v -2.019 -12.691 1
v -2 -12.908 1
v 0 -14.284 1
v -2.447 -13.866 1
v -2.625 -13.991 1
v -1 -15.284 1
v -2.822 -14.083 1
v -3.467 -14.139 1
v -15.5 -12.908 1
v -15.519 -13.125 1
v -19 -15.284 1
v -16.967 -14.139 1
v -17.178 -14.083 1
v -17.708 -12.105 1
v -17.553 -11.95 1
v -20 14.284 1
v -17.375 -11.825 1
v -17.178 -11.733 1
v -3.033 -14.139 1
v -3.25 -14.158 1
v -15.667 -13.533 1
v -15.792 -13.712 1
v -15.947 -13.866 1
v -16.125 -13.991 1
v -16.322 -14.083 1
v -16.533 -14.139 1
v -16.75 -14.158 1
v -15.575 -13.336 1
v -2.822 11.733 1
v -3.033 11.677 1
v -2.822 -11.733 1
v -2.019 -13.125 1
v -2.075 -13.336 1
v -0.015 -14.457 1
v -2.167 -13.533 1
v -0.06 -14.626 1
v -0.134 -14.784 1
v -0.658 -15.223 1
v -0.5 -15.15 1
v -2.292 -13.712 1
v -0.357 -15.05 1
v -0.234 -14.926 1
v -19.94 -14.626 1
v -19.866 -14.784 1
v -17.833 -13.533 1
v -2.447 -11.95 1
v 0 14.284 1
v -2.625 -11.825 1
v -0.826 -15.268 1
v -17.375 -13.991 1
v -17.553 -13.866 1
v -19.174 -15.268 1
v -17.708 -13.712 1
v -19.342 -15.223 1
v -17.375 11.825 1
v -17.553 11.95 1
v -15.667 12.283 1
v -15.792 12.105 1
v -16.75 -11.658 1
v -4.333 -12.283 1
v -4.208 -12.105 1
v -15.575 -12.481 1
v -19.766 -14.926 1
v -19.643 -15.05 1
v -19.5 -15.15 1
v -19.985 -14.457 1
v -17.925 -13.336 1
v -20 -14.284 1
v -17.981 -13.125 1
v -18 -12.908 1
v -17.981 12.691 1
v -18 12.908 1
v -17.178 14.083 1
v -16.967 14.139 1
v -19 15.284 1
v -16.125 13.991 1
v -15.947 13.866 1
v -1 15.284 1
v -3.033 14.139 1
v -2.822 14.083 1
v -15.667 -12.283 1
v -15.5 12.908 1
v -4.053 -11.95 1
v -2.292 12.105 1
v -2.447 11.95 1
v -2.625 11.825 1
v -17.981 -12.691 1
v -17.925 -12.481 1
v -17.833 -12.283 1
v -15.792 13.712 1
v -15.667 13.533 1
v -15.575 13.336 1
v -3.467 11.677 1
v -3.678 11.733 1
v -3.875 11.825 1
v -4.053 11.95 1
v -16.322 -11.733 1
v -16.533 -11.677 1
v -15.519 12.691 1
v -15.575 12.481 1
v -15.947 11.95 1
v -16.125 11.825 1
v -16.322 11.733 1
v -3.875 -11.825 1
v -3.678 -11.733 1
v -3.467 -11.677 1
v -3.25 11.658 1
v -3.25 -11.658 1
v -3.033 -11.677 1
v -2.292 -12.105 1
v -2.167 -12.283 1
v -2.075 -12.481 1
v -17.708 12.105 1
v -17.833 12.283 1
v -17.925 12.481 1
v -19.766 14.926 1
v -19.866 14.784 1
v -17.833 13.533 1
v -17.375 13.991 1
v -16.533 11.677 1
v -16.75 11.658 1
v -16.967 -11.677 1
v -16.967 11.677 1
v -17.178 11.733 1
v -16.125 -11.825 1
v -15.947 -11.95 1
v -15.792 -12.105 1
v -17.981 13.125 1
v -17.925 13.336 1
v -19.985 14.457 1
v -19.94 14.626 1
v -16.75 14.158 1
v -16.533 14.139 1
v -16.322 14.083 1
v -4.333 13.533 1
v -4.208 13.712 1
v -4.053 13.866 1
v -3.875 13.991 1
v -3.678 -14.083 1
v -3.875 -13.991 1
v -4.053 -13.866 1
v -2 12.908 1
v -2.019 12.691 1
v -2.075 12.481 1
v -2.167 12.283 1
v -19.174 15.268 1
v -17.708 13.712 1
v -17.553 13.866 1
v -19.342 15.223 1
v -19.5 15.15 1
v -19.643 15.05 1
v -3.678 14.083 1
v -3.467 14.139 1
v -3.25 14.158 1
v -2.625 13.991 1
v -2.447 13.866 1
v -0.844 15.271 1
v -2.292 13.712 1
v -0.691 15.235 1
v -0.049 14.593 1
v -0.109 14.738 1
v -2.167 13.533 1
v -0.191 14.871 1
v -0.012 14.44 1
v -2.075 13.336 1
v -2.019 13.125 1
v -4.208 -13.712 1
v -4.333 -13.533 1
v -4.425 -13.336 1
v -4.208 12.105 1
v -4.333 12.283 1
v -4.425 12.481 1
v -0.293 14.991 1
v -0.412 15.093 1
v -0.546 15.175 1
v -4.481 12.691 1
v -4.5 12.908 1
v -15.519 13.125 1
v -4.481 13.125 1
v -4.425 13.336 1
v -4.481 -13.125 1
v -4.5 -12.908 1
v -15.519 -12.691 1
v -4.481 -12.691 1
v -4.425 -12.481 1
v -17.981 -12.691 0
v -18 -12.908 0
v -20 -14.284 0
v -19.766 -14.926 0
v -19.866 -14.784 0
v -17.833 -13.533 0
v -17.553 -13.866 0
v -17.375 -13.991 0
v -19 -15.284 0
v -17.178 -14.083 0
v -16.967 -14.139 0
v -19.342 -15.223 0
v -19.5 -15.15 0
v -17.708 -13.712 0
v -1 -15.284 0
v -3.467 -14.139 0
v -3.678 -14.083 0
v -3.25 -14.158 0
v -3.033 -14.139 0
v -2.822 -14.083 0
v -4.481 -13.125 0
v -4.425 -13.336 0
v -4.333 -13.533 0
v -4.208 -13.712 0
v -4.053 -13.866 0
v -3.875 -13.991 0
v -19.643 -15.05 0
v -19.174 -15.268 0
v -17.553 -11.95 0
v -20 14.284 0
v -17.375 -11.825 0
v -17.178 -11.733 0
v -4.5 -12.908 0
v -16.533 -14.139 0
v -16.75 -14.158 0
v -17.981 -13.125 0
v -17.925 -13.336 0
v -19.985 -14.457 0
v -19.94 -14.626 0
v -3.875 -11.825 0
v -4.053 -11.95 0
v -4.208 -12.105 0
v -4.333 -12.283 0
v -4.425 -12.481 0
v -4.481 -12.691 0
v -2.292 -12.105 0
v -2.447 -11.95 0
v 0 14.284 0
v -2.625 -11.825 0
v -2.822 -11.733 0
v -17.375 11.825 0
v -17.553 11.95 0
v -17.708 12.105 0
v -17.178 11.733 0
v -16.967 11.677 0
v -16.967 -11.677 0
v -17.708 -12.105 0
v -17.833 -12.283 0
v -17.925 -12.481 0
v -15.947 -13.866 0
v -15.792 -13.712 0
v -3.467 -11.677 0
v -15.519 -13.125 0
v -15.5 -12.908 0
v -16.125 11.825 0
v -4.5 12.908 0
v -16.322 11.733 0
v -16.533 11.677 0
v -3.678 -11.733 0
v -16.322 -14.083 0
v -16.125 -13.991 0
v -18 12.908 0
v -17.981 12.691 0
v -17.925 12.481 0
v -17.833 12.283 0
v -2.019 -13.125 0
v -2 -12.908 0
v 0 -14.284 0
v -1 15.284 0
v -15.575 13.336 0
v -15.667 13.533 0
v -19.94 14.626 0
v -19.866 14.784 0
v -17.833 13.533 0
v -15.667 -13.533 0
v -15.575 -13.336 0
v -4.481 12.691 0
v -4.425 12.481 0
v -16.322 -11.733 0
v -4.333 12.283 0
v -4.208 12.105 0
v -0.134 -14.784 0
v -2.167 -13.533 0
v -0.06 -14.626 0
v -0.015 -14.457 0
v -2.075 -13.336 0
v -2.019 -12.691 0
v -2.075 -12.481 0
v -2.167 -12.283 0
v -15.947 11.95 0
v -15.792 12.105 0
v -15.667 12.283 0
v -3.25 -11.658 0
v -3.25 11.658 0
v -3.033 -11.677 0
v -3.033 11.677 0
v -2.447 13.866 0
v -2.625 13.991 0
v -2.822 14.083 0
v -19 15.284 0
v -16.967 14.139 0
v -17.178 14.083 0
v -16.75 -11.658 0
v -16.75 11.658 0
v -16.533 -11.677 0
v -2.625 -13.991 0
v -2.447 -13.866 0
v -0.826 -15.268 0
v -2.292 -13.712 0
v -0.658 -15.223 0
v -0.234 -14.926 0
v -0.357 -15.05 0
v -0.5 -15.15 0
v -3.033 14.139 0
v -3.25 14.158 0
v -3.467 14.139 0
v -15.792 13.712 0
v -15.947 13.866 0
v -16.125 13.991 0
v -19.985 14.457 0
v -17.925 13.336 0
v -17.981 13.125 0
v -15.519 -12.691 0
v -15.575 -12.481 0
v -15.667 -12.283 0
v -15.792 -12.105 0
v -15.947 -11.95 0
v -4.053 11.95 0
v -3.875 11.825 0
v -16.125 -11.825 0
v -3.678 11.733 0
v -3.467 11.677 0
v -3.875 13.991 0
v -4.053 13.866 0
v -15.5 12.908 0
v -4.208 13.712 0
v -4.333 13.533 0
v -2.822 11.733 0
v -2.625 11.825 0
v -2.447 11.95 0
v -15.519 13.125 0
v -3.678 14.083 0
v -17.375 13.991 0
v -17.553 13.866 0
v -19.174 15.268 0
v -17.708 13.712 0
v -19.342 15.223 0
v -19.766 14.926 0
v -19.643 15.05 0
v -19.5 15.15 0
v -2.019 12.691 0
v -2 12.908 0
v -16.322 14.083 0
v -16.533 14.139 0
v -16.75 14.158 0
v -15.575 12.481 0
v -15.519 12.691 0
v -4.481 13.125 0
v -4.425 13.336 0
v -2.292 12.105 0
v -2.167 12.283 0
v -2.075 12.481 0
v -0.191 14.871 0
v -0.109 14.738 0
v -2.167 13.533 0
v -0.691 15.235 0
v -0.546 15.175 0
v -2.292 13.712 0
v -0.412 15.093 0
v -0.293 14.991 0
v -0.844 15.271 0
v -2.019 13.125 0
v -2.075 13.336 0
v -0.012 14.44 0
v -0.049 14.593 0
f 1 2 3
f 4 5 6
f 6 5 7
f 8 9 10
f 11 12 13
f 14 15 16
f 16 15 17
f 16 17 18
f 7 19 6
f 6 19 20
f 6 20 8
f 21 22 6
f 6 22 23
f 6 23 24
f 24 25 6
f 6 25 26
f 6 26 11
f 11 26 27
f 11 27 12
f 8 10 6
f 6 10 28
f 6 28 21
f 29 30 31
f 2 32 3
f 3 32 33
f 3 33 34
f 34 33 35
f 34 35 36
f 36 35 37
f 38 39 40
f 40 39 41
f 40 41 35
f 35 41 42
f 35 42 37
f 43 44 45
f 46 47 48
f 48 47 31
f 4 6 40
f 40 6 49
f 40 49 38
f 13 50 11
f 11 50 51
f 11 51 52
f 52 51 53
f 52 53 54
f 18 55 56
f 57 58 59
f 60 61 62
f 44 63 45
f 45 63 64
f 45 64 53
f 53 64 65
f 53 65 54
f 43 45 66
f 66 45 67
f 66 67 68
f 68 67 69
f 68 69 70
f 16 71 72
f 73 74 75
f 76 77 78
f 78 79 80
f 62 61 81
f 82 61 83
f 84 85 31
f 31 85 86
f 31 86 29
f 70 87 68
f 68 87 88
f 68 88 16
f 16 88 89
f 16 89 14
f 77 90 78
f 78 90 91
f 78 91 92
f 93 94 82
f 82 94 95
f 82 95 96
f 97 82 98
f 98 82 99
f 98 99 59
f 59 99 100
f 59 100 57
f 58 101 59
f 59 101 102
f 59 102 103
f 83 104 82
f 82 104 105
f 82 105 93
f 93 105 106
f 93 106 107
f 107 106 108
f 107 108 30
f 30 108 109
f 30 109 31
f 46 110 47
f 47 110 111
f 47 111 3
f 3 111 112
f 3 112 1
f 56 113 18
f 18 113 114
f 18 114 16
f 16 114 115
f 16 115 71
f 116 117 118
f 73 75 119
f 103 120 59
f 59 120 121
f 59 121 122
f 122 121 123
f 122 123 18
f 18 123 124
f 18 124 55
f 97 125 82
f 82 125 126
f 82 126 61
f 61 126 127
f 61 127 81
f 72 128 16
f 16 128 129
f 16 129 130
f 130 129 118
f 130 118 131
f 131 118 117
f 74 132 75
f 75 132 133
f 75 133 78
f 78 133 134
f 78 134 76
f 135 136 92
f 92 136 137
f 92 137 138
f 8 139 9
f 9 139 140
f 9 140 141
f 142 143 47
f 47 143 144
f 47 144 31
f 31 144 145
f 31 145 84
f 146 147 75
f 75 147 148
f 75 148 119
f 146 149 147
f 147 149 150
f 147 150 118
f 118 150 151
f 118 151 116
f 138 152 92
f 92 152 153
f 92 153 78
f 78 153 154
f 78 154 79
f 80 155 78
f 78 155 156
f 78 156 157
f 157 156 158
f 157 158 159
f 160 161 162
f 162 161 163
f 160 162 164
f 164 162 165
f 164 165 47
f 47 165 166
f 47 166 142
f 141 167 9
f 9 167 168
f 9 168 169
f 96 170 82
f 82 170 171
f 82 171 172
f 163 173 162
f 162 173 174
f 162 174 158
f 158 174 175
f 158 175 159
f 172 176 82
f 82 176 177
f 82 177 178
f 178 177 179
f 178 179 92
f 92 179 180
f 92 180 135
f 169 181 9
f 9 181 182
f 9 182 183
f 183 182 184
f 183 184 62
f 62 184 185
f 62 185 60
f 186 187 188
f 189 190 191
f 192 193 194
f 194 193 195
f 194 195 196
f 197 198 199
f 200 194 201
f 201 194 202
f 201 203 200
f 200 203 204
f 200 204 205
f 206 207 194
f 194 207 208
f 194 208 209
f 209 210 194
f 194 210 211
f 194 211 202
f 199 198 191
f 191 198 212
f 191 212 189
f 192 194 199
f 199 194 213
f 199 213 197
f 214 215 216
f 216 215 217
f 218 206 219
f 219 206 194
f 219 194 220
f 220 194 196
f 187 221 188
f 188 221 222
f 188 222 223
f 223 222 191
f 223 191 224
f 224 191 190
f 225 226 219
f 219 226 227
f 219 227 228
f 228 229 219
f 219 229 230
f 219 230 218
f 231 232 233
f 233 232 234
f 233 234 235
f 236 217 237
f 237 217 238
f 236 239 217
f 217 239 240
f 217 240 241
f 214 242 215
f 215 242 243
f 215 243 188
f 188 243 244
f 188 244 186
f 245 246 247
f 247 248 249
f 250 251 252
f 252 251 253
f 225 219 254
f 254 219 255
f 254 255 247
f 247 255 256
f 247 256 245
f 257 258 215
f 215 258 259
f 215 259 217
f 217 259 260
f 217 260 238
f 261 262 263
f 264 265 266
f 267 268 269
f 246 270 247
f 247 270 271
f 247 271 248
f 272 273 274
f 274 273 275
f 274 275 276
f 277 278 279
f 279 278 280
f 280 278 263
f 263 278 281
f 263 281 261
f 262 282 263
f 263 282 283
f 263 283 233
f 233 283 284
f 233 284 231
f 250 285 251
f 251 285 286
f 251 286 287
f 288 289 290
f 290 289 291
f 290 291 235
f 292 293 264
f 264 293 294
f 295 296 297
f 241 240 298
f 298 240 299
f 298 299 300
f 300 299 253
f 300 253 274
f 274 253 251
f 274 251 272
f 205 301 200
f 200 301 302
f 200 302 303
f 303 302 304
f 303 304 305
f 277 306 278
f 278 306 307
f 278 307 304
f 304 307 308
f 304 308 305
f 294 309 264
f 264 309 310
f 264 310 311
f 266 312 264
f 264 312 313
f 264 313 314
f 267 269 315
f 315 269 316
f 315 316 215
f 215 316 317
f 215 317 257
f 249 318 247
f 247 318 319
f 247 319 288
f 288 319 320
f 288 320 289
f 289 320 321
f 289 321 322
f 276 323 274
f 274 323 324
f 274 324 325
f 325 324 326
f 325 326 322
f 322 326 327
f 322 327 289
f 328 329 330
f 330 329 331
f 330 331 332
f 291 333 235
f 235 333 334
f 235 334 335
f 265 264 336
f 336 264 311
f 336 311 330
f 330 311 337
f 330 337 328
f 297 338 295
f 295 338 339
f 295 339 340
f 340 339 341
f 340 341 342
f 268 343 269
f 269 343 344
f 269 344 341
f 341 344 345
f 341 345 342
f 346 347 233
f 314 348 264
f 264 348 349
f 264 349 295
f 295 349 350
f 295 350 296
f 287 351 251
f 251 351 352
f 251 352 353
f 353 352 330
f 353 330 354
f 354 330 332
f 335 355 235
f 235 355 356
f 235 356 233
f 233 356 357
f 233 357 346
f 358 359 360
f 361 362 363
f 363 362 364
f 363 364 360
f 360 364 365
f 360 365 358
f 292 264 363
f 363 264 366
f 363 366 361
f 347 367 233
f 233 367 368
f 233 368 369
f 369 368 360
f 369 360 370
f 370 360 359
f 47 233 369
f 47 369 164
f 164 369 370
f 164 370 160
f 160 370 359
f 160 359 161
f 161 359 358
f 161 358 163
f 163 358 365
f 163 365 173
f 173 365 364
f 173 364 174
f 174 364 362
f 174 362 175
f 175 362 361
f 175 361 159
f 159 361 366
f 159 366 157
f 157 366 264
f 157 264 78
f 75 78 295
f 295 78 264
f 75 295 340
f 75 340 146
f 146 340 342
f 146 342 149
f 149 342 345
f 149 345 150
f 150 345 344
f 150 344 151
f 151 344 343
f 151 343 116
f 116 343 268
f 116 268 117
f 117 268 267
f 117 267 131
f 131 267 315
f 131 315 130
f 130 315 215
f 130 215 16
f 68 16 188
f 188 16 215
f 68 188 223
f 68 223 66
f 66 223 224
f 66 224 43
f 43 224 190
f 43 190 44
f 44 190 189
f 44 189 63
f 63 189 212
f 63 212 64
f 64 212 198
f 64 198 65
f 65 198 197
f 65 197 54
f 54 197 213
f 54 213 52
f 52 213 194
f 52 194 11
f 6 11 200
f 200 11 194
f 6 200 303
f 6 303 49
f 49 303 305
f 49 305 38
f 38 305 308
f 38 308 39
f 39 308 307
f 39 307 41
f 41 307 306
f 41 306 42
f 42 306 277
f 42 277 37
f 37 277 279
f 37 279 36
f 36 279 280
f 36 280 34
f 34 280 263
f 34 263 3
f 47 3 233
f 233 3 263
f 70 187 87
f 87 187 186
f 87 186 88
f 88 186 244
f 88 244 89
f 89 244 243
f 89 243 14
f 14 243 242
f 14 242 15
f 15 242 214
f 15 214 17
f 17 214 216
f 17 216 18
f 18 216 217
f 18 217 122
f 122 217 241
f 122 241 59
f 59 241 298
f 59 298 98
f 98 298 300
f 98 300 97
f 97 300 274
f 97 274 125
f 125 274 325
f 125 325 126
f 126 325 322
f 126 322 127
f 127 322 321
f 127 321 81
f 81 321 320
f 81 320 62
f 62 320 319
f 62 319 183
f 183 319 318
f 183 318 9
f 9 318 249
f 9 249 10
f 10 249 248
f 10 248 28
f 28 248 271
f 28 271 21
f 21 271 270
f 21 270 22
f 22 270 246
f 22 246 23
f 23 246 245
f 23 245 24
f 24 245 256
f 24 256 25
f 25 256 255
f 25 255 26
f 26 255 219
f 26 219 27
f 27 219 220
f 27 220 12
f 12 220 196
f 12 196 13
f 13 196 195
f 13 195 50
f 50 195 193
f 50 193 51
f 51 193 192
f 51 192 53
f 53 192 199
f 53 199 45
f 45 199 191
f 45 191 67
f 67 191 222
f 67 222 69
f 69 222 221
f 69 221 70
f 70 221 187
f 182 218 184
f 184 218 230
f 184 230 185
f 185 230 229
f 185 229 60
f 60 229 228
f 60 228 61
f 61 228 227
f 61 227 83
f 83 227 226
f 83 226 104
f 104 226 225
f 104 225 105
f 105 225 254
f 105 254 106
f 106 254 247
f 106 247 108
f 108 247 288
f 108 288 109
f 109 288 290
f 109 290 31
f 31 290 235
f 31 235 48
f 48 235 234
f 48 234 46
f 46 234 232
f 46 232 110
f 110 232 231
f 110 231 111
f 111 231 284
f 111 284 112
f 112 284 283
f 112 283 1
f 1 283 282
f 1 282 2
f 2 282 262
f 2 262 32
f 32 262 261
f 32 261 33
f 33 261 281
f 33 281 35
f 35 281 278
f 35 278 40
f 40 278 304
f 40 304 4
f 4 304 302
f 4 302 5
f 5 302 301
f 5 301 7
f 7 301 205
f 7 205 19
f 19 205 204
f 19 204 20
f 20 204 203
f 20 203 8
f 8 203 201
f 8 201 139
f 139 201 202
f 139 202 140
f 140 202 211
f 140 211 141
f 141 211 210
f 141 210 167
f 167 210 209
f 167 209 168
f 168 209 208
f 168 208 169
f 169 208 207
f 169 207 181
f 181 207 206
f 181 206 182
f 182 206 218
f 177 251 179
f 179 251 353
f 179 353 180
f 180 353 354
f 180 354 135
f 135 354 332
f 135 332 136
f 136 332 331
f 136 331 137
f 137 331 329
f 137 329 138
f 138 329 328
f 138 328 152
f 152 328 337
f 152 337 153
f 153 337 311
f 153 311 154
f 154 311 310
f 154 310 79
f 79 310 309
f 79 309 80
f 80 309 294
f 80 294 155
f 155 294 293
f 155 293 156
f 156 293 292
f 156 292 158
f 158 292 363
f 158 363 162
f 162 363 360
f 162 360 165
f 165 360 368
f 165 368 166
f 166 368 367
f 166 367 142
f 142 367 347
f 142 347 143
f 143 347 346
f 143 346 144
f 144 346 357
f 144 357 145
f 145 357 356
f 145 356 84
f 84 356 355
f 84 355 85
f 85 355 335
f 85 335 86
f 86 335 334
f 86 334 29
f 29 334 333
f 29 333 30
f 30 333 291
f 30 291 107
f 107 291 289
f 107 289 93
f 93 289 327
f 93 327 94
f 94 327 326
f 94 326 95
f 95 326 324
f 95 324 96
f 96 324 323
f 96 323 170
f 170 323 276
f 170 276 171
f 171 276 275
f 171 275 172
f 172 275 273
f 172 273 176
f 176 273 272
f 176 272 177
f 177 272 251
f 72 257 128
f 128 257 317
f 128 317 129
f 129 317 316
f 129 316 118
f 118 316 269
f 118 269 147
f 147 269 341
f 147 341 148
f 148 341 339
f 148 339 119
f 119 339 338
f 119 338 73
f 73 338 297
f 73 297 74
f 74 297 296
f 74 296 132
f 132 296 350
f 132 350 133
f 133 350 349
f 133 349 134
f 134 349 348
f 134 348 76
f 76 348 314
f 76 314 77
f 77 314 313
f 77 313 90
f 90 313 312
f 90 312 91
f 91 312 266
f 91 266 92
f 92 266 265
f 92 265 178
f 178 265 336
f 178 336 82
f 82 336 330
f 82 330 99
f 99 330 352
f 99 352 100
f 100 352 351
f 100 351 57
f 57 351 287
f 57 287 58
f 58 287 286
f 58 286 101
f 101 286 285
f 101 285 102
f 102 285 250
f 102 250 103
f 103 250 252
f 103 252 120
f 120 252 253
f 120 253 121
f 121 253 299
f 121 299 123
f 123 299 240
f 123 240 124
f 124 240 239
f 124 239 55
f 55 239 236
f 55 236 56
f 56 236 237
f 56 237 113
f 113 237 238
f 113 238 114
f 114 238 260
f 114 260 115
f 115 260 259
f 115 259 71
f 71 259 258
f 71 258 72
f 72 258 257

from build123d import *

# Parameters (mm, degrees)
SKETCH1_R           = 1.25
BOSS_EXTRUDE1_DEPTH = 1


with BuildPart() as part:
    # Sketch1 → Boss-Extrude1 (new body)
    with BuildSketch(Plane.XY):
        with BuildLine():
            Line((0, 14.283660896), (0, -7.246695314))
            Line((0, -7.246695314), (0, -14.283660896))
            ThreePointArc((0, -14.283660896), (-0.292893219, -14.990767678), (-1, -15.283660896))
            Line((-1, -15.283660896), (-19, -15.283660896))
            ThreePointArc((-19, -15.283660896), (-19.707106781, -14.990767678), (-20, -14.283660896))
            Line((-20, -14.283660896), (-20, -7.246695314))
            Line((-20, -7.246695314), (-20, 14.283660896))
            ThreePointArc((-20, 14.283660896), (-19.707106781, 14.990767678), (-19, 15.283660896))
            Line((-19, 15.283660896), (-1, 15.283660896))
            ThreePointArc((-1, 15.283660896), (-0.292893219, 14.990767678), (0, 14.283660896))
        make_face()
        with Locations((-16.75, -12.908028273)):
            Circle(SKETCH1_R, mode=Mode.SUBTRACT)
        with Locations((-3.25, -12.908028273)):
            Circle(SKETCH1_R, mode=Mode.SUBTRACT)
        with Locations((-3.25, 12.908028273)):
            Circle(SKETCH1_R, mode=Mode.SUBTRACT)
        with Locations((-16.75, 12.908028273)):
            Circle(SKETCH1_R, mode=Mode.SUBTRACT)
    extrude(amount=BOSS_EXTRUDE1_DEPTH)


solid = part.part
